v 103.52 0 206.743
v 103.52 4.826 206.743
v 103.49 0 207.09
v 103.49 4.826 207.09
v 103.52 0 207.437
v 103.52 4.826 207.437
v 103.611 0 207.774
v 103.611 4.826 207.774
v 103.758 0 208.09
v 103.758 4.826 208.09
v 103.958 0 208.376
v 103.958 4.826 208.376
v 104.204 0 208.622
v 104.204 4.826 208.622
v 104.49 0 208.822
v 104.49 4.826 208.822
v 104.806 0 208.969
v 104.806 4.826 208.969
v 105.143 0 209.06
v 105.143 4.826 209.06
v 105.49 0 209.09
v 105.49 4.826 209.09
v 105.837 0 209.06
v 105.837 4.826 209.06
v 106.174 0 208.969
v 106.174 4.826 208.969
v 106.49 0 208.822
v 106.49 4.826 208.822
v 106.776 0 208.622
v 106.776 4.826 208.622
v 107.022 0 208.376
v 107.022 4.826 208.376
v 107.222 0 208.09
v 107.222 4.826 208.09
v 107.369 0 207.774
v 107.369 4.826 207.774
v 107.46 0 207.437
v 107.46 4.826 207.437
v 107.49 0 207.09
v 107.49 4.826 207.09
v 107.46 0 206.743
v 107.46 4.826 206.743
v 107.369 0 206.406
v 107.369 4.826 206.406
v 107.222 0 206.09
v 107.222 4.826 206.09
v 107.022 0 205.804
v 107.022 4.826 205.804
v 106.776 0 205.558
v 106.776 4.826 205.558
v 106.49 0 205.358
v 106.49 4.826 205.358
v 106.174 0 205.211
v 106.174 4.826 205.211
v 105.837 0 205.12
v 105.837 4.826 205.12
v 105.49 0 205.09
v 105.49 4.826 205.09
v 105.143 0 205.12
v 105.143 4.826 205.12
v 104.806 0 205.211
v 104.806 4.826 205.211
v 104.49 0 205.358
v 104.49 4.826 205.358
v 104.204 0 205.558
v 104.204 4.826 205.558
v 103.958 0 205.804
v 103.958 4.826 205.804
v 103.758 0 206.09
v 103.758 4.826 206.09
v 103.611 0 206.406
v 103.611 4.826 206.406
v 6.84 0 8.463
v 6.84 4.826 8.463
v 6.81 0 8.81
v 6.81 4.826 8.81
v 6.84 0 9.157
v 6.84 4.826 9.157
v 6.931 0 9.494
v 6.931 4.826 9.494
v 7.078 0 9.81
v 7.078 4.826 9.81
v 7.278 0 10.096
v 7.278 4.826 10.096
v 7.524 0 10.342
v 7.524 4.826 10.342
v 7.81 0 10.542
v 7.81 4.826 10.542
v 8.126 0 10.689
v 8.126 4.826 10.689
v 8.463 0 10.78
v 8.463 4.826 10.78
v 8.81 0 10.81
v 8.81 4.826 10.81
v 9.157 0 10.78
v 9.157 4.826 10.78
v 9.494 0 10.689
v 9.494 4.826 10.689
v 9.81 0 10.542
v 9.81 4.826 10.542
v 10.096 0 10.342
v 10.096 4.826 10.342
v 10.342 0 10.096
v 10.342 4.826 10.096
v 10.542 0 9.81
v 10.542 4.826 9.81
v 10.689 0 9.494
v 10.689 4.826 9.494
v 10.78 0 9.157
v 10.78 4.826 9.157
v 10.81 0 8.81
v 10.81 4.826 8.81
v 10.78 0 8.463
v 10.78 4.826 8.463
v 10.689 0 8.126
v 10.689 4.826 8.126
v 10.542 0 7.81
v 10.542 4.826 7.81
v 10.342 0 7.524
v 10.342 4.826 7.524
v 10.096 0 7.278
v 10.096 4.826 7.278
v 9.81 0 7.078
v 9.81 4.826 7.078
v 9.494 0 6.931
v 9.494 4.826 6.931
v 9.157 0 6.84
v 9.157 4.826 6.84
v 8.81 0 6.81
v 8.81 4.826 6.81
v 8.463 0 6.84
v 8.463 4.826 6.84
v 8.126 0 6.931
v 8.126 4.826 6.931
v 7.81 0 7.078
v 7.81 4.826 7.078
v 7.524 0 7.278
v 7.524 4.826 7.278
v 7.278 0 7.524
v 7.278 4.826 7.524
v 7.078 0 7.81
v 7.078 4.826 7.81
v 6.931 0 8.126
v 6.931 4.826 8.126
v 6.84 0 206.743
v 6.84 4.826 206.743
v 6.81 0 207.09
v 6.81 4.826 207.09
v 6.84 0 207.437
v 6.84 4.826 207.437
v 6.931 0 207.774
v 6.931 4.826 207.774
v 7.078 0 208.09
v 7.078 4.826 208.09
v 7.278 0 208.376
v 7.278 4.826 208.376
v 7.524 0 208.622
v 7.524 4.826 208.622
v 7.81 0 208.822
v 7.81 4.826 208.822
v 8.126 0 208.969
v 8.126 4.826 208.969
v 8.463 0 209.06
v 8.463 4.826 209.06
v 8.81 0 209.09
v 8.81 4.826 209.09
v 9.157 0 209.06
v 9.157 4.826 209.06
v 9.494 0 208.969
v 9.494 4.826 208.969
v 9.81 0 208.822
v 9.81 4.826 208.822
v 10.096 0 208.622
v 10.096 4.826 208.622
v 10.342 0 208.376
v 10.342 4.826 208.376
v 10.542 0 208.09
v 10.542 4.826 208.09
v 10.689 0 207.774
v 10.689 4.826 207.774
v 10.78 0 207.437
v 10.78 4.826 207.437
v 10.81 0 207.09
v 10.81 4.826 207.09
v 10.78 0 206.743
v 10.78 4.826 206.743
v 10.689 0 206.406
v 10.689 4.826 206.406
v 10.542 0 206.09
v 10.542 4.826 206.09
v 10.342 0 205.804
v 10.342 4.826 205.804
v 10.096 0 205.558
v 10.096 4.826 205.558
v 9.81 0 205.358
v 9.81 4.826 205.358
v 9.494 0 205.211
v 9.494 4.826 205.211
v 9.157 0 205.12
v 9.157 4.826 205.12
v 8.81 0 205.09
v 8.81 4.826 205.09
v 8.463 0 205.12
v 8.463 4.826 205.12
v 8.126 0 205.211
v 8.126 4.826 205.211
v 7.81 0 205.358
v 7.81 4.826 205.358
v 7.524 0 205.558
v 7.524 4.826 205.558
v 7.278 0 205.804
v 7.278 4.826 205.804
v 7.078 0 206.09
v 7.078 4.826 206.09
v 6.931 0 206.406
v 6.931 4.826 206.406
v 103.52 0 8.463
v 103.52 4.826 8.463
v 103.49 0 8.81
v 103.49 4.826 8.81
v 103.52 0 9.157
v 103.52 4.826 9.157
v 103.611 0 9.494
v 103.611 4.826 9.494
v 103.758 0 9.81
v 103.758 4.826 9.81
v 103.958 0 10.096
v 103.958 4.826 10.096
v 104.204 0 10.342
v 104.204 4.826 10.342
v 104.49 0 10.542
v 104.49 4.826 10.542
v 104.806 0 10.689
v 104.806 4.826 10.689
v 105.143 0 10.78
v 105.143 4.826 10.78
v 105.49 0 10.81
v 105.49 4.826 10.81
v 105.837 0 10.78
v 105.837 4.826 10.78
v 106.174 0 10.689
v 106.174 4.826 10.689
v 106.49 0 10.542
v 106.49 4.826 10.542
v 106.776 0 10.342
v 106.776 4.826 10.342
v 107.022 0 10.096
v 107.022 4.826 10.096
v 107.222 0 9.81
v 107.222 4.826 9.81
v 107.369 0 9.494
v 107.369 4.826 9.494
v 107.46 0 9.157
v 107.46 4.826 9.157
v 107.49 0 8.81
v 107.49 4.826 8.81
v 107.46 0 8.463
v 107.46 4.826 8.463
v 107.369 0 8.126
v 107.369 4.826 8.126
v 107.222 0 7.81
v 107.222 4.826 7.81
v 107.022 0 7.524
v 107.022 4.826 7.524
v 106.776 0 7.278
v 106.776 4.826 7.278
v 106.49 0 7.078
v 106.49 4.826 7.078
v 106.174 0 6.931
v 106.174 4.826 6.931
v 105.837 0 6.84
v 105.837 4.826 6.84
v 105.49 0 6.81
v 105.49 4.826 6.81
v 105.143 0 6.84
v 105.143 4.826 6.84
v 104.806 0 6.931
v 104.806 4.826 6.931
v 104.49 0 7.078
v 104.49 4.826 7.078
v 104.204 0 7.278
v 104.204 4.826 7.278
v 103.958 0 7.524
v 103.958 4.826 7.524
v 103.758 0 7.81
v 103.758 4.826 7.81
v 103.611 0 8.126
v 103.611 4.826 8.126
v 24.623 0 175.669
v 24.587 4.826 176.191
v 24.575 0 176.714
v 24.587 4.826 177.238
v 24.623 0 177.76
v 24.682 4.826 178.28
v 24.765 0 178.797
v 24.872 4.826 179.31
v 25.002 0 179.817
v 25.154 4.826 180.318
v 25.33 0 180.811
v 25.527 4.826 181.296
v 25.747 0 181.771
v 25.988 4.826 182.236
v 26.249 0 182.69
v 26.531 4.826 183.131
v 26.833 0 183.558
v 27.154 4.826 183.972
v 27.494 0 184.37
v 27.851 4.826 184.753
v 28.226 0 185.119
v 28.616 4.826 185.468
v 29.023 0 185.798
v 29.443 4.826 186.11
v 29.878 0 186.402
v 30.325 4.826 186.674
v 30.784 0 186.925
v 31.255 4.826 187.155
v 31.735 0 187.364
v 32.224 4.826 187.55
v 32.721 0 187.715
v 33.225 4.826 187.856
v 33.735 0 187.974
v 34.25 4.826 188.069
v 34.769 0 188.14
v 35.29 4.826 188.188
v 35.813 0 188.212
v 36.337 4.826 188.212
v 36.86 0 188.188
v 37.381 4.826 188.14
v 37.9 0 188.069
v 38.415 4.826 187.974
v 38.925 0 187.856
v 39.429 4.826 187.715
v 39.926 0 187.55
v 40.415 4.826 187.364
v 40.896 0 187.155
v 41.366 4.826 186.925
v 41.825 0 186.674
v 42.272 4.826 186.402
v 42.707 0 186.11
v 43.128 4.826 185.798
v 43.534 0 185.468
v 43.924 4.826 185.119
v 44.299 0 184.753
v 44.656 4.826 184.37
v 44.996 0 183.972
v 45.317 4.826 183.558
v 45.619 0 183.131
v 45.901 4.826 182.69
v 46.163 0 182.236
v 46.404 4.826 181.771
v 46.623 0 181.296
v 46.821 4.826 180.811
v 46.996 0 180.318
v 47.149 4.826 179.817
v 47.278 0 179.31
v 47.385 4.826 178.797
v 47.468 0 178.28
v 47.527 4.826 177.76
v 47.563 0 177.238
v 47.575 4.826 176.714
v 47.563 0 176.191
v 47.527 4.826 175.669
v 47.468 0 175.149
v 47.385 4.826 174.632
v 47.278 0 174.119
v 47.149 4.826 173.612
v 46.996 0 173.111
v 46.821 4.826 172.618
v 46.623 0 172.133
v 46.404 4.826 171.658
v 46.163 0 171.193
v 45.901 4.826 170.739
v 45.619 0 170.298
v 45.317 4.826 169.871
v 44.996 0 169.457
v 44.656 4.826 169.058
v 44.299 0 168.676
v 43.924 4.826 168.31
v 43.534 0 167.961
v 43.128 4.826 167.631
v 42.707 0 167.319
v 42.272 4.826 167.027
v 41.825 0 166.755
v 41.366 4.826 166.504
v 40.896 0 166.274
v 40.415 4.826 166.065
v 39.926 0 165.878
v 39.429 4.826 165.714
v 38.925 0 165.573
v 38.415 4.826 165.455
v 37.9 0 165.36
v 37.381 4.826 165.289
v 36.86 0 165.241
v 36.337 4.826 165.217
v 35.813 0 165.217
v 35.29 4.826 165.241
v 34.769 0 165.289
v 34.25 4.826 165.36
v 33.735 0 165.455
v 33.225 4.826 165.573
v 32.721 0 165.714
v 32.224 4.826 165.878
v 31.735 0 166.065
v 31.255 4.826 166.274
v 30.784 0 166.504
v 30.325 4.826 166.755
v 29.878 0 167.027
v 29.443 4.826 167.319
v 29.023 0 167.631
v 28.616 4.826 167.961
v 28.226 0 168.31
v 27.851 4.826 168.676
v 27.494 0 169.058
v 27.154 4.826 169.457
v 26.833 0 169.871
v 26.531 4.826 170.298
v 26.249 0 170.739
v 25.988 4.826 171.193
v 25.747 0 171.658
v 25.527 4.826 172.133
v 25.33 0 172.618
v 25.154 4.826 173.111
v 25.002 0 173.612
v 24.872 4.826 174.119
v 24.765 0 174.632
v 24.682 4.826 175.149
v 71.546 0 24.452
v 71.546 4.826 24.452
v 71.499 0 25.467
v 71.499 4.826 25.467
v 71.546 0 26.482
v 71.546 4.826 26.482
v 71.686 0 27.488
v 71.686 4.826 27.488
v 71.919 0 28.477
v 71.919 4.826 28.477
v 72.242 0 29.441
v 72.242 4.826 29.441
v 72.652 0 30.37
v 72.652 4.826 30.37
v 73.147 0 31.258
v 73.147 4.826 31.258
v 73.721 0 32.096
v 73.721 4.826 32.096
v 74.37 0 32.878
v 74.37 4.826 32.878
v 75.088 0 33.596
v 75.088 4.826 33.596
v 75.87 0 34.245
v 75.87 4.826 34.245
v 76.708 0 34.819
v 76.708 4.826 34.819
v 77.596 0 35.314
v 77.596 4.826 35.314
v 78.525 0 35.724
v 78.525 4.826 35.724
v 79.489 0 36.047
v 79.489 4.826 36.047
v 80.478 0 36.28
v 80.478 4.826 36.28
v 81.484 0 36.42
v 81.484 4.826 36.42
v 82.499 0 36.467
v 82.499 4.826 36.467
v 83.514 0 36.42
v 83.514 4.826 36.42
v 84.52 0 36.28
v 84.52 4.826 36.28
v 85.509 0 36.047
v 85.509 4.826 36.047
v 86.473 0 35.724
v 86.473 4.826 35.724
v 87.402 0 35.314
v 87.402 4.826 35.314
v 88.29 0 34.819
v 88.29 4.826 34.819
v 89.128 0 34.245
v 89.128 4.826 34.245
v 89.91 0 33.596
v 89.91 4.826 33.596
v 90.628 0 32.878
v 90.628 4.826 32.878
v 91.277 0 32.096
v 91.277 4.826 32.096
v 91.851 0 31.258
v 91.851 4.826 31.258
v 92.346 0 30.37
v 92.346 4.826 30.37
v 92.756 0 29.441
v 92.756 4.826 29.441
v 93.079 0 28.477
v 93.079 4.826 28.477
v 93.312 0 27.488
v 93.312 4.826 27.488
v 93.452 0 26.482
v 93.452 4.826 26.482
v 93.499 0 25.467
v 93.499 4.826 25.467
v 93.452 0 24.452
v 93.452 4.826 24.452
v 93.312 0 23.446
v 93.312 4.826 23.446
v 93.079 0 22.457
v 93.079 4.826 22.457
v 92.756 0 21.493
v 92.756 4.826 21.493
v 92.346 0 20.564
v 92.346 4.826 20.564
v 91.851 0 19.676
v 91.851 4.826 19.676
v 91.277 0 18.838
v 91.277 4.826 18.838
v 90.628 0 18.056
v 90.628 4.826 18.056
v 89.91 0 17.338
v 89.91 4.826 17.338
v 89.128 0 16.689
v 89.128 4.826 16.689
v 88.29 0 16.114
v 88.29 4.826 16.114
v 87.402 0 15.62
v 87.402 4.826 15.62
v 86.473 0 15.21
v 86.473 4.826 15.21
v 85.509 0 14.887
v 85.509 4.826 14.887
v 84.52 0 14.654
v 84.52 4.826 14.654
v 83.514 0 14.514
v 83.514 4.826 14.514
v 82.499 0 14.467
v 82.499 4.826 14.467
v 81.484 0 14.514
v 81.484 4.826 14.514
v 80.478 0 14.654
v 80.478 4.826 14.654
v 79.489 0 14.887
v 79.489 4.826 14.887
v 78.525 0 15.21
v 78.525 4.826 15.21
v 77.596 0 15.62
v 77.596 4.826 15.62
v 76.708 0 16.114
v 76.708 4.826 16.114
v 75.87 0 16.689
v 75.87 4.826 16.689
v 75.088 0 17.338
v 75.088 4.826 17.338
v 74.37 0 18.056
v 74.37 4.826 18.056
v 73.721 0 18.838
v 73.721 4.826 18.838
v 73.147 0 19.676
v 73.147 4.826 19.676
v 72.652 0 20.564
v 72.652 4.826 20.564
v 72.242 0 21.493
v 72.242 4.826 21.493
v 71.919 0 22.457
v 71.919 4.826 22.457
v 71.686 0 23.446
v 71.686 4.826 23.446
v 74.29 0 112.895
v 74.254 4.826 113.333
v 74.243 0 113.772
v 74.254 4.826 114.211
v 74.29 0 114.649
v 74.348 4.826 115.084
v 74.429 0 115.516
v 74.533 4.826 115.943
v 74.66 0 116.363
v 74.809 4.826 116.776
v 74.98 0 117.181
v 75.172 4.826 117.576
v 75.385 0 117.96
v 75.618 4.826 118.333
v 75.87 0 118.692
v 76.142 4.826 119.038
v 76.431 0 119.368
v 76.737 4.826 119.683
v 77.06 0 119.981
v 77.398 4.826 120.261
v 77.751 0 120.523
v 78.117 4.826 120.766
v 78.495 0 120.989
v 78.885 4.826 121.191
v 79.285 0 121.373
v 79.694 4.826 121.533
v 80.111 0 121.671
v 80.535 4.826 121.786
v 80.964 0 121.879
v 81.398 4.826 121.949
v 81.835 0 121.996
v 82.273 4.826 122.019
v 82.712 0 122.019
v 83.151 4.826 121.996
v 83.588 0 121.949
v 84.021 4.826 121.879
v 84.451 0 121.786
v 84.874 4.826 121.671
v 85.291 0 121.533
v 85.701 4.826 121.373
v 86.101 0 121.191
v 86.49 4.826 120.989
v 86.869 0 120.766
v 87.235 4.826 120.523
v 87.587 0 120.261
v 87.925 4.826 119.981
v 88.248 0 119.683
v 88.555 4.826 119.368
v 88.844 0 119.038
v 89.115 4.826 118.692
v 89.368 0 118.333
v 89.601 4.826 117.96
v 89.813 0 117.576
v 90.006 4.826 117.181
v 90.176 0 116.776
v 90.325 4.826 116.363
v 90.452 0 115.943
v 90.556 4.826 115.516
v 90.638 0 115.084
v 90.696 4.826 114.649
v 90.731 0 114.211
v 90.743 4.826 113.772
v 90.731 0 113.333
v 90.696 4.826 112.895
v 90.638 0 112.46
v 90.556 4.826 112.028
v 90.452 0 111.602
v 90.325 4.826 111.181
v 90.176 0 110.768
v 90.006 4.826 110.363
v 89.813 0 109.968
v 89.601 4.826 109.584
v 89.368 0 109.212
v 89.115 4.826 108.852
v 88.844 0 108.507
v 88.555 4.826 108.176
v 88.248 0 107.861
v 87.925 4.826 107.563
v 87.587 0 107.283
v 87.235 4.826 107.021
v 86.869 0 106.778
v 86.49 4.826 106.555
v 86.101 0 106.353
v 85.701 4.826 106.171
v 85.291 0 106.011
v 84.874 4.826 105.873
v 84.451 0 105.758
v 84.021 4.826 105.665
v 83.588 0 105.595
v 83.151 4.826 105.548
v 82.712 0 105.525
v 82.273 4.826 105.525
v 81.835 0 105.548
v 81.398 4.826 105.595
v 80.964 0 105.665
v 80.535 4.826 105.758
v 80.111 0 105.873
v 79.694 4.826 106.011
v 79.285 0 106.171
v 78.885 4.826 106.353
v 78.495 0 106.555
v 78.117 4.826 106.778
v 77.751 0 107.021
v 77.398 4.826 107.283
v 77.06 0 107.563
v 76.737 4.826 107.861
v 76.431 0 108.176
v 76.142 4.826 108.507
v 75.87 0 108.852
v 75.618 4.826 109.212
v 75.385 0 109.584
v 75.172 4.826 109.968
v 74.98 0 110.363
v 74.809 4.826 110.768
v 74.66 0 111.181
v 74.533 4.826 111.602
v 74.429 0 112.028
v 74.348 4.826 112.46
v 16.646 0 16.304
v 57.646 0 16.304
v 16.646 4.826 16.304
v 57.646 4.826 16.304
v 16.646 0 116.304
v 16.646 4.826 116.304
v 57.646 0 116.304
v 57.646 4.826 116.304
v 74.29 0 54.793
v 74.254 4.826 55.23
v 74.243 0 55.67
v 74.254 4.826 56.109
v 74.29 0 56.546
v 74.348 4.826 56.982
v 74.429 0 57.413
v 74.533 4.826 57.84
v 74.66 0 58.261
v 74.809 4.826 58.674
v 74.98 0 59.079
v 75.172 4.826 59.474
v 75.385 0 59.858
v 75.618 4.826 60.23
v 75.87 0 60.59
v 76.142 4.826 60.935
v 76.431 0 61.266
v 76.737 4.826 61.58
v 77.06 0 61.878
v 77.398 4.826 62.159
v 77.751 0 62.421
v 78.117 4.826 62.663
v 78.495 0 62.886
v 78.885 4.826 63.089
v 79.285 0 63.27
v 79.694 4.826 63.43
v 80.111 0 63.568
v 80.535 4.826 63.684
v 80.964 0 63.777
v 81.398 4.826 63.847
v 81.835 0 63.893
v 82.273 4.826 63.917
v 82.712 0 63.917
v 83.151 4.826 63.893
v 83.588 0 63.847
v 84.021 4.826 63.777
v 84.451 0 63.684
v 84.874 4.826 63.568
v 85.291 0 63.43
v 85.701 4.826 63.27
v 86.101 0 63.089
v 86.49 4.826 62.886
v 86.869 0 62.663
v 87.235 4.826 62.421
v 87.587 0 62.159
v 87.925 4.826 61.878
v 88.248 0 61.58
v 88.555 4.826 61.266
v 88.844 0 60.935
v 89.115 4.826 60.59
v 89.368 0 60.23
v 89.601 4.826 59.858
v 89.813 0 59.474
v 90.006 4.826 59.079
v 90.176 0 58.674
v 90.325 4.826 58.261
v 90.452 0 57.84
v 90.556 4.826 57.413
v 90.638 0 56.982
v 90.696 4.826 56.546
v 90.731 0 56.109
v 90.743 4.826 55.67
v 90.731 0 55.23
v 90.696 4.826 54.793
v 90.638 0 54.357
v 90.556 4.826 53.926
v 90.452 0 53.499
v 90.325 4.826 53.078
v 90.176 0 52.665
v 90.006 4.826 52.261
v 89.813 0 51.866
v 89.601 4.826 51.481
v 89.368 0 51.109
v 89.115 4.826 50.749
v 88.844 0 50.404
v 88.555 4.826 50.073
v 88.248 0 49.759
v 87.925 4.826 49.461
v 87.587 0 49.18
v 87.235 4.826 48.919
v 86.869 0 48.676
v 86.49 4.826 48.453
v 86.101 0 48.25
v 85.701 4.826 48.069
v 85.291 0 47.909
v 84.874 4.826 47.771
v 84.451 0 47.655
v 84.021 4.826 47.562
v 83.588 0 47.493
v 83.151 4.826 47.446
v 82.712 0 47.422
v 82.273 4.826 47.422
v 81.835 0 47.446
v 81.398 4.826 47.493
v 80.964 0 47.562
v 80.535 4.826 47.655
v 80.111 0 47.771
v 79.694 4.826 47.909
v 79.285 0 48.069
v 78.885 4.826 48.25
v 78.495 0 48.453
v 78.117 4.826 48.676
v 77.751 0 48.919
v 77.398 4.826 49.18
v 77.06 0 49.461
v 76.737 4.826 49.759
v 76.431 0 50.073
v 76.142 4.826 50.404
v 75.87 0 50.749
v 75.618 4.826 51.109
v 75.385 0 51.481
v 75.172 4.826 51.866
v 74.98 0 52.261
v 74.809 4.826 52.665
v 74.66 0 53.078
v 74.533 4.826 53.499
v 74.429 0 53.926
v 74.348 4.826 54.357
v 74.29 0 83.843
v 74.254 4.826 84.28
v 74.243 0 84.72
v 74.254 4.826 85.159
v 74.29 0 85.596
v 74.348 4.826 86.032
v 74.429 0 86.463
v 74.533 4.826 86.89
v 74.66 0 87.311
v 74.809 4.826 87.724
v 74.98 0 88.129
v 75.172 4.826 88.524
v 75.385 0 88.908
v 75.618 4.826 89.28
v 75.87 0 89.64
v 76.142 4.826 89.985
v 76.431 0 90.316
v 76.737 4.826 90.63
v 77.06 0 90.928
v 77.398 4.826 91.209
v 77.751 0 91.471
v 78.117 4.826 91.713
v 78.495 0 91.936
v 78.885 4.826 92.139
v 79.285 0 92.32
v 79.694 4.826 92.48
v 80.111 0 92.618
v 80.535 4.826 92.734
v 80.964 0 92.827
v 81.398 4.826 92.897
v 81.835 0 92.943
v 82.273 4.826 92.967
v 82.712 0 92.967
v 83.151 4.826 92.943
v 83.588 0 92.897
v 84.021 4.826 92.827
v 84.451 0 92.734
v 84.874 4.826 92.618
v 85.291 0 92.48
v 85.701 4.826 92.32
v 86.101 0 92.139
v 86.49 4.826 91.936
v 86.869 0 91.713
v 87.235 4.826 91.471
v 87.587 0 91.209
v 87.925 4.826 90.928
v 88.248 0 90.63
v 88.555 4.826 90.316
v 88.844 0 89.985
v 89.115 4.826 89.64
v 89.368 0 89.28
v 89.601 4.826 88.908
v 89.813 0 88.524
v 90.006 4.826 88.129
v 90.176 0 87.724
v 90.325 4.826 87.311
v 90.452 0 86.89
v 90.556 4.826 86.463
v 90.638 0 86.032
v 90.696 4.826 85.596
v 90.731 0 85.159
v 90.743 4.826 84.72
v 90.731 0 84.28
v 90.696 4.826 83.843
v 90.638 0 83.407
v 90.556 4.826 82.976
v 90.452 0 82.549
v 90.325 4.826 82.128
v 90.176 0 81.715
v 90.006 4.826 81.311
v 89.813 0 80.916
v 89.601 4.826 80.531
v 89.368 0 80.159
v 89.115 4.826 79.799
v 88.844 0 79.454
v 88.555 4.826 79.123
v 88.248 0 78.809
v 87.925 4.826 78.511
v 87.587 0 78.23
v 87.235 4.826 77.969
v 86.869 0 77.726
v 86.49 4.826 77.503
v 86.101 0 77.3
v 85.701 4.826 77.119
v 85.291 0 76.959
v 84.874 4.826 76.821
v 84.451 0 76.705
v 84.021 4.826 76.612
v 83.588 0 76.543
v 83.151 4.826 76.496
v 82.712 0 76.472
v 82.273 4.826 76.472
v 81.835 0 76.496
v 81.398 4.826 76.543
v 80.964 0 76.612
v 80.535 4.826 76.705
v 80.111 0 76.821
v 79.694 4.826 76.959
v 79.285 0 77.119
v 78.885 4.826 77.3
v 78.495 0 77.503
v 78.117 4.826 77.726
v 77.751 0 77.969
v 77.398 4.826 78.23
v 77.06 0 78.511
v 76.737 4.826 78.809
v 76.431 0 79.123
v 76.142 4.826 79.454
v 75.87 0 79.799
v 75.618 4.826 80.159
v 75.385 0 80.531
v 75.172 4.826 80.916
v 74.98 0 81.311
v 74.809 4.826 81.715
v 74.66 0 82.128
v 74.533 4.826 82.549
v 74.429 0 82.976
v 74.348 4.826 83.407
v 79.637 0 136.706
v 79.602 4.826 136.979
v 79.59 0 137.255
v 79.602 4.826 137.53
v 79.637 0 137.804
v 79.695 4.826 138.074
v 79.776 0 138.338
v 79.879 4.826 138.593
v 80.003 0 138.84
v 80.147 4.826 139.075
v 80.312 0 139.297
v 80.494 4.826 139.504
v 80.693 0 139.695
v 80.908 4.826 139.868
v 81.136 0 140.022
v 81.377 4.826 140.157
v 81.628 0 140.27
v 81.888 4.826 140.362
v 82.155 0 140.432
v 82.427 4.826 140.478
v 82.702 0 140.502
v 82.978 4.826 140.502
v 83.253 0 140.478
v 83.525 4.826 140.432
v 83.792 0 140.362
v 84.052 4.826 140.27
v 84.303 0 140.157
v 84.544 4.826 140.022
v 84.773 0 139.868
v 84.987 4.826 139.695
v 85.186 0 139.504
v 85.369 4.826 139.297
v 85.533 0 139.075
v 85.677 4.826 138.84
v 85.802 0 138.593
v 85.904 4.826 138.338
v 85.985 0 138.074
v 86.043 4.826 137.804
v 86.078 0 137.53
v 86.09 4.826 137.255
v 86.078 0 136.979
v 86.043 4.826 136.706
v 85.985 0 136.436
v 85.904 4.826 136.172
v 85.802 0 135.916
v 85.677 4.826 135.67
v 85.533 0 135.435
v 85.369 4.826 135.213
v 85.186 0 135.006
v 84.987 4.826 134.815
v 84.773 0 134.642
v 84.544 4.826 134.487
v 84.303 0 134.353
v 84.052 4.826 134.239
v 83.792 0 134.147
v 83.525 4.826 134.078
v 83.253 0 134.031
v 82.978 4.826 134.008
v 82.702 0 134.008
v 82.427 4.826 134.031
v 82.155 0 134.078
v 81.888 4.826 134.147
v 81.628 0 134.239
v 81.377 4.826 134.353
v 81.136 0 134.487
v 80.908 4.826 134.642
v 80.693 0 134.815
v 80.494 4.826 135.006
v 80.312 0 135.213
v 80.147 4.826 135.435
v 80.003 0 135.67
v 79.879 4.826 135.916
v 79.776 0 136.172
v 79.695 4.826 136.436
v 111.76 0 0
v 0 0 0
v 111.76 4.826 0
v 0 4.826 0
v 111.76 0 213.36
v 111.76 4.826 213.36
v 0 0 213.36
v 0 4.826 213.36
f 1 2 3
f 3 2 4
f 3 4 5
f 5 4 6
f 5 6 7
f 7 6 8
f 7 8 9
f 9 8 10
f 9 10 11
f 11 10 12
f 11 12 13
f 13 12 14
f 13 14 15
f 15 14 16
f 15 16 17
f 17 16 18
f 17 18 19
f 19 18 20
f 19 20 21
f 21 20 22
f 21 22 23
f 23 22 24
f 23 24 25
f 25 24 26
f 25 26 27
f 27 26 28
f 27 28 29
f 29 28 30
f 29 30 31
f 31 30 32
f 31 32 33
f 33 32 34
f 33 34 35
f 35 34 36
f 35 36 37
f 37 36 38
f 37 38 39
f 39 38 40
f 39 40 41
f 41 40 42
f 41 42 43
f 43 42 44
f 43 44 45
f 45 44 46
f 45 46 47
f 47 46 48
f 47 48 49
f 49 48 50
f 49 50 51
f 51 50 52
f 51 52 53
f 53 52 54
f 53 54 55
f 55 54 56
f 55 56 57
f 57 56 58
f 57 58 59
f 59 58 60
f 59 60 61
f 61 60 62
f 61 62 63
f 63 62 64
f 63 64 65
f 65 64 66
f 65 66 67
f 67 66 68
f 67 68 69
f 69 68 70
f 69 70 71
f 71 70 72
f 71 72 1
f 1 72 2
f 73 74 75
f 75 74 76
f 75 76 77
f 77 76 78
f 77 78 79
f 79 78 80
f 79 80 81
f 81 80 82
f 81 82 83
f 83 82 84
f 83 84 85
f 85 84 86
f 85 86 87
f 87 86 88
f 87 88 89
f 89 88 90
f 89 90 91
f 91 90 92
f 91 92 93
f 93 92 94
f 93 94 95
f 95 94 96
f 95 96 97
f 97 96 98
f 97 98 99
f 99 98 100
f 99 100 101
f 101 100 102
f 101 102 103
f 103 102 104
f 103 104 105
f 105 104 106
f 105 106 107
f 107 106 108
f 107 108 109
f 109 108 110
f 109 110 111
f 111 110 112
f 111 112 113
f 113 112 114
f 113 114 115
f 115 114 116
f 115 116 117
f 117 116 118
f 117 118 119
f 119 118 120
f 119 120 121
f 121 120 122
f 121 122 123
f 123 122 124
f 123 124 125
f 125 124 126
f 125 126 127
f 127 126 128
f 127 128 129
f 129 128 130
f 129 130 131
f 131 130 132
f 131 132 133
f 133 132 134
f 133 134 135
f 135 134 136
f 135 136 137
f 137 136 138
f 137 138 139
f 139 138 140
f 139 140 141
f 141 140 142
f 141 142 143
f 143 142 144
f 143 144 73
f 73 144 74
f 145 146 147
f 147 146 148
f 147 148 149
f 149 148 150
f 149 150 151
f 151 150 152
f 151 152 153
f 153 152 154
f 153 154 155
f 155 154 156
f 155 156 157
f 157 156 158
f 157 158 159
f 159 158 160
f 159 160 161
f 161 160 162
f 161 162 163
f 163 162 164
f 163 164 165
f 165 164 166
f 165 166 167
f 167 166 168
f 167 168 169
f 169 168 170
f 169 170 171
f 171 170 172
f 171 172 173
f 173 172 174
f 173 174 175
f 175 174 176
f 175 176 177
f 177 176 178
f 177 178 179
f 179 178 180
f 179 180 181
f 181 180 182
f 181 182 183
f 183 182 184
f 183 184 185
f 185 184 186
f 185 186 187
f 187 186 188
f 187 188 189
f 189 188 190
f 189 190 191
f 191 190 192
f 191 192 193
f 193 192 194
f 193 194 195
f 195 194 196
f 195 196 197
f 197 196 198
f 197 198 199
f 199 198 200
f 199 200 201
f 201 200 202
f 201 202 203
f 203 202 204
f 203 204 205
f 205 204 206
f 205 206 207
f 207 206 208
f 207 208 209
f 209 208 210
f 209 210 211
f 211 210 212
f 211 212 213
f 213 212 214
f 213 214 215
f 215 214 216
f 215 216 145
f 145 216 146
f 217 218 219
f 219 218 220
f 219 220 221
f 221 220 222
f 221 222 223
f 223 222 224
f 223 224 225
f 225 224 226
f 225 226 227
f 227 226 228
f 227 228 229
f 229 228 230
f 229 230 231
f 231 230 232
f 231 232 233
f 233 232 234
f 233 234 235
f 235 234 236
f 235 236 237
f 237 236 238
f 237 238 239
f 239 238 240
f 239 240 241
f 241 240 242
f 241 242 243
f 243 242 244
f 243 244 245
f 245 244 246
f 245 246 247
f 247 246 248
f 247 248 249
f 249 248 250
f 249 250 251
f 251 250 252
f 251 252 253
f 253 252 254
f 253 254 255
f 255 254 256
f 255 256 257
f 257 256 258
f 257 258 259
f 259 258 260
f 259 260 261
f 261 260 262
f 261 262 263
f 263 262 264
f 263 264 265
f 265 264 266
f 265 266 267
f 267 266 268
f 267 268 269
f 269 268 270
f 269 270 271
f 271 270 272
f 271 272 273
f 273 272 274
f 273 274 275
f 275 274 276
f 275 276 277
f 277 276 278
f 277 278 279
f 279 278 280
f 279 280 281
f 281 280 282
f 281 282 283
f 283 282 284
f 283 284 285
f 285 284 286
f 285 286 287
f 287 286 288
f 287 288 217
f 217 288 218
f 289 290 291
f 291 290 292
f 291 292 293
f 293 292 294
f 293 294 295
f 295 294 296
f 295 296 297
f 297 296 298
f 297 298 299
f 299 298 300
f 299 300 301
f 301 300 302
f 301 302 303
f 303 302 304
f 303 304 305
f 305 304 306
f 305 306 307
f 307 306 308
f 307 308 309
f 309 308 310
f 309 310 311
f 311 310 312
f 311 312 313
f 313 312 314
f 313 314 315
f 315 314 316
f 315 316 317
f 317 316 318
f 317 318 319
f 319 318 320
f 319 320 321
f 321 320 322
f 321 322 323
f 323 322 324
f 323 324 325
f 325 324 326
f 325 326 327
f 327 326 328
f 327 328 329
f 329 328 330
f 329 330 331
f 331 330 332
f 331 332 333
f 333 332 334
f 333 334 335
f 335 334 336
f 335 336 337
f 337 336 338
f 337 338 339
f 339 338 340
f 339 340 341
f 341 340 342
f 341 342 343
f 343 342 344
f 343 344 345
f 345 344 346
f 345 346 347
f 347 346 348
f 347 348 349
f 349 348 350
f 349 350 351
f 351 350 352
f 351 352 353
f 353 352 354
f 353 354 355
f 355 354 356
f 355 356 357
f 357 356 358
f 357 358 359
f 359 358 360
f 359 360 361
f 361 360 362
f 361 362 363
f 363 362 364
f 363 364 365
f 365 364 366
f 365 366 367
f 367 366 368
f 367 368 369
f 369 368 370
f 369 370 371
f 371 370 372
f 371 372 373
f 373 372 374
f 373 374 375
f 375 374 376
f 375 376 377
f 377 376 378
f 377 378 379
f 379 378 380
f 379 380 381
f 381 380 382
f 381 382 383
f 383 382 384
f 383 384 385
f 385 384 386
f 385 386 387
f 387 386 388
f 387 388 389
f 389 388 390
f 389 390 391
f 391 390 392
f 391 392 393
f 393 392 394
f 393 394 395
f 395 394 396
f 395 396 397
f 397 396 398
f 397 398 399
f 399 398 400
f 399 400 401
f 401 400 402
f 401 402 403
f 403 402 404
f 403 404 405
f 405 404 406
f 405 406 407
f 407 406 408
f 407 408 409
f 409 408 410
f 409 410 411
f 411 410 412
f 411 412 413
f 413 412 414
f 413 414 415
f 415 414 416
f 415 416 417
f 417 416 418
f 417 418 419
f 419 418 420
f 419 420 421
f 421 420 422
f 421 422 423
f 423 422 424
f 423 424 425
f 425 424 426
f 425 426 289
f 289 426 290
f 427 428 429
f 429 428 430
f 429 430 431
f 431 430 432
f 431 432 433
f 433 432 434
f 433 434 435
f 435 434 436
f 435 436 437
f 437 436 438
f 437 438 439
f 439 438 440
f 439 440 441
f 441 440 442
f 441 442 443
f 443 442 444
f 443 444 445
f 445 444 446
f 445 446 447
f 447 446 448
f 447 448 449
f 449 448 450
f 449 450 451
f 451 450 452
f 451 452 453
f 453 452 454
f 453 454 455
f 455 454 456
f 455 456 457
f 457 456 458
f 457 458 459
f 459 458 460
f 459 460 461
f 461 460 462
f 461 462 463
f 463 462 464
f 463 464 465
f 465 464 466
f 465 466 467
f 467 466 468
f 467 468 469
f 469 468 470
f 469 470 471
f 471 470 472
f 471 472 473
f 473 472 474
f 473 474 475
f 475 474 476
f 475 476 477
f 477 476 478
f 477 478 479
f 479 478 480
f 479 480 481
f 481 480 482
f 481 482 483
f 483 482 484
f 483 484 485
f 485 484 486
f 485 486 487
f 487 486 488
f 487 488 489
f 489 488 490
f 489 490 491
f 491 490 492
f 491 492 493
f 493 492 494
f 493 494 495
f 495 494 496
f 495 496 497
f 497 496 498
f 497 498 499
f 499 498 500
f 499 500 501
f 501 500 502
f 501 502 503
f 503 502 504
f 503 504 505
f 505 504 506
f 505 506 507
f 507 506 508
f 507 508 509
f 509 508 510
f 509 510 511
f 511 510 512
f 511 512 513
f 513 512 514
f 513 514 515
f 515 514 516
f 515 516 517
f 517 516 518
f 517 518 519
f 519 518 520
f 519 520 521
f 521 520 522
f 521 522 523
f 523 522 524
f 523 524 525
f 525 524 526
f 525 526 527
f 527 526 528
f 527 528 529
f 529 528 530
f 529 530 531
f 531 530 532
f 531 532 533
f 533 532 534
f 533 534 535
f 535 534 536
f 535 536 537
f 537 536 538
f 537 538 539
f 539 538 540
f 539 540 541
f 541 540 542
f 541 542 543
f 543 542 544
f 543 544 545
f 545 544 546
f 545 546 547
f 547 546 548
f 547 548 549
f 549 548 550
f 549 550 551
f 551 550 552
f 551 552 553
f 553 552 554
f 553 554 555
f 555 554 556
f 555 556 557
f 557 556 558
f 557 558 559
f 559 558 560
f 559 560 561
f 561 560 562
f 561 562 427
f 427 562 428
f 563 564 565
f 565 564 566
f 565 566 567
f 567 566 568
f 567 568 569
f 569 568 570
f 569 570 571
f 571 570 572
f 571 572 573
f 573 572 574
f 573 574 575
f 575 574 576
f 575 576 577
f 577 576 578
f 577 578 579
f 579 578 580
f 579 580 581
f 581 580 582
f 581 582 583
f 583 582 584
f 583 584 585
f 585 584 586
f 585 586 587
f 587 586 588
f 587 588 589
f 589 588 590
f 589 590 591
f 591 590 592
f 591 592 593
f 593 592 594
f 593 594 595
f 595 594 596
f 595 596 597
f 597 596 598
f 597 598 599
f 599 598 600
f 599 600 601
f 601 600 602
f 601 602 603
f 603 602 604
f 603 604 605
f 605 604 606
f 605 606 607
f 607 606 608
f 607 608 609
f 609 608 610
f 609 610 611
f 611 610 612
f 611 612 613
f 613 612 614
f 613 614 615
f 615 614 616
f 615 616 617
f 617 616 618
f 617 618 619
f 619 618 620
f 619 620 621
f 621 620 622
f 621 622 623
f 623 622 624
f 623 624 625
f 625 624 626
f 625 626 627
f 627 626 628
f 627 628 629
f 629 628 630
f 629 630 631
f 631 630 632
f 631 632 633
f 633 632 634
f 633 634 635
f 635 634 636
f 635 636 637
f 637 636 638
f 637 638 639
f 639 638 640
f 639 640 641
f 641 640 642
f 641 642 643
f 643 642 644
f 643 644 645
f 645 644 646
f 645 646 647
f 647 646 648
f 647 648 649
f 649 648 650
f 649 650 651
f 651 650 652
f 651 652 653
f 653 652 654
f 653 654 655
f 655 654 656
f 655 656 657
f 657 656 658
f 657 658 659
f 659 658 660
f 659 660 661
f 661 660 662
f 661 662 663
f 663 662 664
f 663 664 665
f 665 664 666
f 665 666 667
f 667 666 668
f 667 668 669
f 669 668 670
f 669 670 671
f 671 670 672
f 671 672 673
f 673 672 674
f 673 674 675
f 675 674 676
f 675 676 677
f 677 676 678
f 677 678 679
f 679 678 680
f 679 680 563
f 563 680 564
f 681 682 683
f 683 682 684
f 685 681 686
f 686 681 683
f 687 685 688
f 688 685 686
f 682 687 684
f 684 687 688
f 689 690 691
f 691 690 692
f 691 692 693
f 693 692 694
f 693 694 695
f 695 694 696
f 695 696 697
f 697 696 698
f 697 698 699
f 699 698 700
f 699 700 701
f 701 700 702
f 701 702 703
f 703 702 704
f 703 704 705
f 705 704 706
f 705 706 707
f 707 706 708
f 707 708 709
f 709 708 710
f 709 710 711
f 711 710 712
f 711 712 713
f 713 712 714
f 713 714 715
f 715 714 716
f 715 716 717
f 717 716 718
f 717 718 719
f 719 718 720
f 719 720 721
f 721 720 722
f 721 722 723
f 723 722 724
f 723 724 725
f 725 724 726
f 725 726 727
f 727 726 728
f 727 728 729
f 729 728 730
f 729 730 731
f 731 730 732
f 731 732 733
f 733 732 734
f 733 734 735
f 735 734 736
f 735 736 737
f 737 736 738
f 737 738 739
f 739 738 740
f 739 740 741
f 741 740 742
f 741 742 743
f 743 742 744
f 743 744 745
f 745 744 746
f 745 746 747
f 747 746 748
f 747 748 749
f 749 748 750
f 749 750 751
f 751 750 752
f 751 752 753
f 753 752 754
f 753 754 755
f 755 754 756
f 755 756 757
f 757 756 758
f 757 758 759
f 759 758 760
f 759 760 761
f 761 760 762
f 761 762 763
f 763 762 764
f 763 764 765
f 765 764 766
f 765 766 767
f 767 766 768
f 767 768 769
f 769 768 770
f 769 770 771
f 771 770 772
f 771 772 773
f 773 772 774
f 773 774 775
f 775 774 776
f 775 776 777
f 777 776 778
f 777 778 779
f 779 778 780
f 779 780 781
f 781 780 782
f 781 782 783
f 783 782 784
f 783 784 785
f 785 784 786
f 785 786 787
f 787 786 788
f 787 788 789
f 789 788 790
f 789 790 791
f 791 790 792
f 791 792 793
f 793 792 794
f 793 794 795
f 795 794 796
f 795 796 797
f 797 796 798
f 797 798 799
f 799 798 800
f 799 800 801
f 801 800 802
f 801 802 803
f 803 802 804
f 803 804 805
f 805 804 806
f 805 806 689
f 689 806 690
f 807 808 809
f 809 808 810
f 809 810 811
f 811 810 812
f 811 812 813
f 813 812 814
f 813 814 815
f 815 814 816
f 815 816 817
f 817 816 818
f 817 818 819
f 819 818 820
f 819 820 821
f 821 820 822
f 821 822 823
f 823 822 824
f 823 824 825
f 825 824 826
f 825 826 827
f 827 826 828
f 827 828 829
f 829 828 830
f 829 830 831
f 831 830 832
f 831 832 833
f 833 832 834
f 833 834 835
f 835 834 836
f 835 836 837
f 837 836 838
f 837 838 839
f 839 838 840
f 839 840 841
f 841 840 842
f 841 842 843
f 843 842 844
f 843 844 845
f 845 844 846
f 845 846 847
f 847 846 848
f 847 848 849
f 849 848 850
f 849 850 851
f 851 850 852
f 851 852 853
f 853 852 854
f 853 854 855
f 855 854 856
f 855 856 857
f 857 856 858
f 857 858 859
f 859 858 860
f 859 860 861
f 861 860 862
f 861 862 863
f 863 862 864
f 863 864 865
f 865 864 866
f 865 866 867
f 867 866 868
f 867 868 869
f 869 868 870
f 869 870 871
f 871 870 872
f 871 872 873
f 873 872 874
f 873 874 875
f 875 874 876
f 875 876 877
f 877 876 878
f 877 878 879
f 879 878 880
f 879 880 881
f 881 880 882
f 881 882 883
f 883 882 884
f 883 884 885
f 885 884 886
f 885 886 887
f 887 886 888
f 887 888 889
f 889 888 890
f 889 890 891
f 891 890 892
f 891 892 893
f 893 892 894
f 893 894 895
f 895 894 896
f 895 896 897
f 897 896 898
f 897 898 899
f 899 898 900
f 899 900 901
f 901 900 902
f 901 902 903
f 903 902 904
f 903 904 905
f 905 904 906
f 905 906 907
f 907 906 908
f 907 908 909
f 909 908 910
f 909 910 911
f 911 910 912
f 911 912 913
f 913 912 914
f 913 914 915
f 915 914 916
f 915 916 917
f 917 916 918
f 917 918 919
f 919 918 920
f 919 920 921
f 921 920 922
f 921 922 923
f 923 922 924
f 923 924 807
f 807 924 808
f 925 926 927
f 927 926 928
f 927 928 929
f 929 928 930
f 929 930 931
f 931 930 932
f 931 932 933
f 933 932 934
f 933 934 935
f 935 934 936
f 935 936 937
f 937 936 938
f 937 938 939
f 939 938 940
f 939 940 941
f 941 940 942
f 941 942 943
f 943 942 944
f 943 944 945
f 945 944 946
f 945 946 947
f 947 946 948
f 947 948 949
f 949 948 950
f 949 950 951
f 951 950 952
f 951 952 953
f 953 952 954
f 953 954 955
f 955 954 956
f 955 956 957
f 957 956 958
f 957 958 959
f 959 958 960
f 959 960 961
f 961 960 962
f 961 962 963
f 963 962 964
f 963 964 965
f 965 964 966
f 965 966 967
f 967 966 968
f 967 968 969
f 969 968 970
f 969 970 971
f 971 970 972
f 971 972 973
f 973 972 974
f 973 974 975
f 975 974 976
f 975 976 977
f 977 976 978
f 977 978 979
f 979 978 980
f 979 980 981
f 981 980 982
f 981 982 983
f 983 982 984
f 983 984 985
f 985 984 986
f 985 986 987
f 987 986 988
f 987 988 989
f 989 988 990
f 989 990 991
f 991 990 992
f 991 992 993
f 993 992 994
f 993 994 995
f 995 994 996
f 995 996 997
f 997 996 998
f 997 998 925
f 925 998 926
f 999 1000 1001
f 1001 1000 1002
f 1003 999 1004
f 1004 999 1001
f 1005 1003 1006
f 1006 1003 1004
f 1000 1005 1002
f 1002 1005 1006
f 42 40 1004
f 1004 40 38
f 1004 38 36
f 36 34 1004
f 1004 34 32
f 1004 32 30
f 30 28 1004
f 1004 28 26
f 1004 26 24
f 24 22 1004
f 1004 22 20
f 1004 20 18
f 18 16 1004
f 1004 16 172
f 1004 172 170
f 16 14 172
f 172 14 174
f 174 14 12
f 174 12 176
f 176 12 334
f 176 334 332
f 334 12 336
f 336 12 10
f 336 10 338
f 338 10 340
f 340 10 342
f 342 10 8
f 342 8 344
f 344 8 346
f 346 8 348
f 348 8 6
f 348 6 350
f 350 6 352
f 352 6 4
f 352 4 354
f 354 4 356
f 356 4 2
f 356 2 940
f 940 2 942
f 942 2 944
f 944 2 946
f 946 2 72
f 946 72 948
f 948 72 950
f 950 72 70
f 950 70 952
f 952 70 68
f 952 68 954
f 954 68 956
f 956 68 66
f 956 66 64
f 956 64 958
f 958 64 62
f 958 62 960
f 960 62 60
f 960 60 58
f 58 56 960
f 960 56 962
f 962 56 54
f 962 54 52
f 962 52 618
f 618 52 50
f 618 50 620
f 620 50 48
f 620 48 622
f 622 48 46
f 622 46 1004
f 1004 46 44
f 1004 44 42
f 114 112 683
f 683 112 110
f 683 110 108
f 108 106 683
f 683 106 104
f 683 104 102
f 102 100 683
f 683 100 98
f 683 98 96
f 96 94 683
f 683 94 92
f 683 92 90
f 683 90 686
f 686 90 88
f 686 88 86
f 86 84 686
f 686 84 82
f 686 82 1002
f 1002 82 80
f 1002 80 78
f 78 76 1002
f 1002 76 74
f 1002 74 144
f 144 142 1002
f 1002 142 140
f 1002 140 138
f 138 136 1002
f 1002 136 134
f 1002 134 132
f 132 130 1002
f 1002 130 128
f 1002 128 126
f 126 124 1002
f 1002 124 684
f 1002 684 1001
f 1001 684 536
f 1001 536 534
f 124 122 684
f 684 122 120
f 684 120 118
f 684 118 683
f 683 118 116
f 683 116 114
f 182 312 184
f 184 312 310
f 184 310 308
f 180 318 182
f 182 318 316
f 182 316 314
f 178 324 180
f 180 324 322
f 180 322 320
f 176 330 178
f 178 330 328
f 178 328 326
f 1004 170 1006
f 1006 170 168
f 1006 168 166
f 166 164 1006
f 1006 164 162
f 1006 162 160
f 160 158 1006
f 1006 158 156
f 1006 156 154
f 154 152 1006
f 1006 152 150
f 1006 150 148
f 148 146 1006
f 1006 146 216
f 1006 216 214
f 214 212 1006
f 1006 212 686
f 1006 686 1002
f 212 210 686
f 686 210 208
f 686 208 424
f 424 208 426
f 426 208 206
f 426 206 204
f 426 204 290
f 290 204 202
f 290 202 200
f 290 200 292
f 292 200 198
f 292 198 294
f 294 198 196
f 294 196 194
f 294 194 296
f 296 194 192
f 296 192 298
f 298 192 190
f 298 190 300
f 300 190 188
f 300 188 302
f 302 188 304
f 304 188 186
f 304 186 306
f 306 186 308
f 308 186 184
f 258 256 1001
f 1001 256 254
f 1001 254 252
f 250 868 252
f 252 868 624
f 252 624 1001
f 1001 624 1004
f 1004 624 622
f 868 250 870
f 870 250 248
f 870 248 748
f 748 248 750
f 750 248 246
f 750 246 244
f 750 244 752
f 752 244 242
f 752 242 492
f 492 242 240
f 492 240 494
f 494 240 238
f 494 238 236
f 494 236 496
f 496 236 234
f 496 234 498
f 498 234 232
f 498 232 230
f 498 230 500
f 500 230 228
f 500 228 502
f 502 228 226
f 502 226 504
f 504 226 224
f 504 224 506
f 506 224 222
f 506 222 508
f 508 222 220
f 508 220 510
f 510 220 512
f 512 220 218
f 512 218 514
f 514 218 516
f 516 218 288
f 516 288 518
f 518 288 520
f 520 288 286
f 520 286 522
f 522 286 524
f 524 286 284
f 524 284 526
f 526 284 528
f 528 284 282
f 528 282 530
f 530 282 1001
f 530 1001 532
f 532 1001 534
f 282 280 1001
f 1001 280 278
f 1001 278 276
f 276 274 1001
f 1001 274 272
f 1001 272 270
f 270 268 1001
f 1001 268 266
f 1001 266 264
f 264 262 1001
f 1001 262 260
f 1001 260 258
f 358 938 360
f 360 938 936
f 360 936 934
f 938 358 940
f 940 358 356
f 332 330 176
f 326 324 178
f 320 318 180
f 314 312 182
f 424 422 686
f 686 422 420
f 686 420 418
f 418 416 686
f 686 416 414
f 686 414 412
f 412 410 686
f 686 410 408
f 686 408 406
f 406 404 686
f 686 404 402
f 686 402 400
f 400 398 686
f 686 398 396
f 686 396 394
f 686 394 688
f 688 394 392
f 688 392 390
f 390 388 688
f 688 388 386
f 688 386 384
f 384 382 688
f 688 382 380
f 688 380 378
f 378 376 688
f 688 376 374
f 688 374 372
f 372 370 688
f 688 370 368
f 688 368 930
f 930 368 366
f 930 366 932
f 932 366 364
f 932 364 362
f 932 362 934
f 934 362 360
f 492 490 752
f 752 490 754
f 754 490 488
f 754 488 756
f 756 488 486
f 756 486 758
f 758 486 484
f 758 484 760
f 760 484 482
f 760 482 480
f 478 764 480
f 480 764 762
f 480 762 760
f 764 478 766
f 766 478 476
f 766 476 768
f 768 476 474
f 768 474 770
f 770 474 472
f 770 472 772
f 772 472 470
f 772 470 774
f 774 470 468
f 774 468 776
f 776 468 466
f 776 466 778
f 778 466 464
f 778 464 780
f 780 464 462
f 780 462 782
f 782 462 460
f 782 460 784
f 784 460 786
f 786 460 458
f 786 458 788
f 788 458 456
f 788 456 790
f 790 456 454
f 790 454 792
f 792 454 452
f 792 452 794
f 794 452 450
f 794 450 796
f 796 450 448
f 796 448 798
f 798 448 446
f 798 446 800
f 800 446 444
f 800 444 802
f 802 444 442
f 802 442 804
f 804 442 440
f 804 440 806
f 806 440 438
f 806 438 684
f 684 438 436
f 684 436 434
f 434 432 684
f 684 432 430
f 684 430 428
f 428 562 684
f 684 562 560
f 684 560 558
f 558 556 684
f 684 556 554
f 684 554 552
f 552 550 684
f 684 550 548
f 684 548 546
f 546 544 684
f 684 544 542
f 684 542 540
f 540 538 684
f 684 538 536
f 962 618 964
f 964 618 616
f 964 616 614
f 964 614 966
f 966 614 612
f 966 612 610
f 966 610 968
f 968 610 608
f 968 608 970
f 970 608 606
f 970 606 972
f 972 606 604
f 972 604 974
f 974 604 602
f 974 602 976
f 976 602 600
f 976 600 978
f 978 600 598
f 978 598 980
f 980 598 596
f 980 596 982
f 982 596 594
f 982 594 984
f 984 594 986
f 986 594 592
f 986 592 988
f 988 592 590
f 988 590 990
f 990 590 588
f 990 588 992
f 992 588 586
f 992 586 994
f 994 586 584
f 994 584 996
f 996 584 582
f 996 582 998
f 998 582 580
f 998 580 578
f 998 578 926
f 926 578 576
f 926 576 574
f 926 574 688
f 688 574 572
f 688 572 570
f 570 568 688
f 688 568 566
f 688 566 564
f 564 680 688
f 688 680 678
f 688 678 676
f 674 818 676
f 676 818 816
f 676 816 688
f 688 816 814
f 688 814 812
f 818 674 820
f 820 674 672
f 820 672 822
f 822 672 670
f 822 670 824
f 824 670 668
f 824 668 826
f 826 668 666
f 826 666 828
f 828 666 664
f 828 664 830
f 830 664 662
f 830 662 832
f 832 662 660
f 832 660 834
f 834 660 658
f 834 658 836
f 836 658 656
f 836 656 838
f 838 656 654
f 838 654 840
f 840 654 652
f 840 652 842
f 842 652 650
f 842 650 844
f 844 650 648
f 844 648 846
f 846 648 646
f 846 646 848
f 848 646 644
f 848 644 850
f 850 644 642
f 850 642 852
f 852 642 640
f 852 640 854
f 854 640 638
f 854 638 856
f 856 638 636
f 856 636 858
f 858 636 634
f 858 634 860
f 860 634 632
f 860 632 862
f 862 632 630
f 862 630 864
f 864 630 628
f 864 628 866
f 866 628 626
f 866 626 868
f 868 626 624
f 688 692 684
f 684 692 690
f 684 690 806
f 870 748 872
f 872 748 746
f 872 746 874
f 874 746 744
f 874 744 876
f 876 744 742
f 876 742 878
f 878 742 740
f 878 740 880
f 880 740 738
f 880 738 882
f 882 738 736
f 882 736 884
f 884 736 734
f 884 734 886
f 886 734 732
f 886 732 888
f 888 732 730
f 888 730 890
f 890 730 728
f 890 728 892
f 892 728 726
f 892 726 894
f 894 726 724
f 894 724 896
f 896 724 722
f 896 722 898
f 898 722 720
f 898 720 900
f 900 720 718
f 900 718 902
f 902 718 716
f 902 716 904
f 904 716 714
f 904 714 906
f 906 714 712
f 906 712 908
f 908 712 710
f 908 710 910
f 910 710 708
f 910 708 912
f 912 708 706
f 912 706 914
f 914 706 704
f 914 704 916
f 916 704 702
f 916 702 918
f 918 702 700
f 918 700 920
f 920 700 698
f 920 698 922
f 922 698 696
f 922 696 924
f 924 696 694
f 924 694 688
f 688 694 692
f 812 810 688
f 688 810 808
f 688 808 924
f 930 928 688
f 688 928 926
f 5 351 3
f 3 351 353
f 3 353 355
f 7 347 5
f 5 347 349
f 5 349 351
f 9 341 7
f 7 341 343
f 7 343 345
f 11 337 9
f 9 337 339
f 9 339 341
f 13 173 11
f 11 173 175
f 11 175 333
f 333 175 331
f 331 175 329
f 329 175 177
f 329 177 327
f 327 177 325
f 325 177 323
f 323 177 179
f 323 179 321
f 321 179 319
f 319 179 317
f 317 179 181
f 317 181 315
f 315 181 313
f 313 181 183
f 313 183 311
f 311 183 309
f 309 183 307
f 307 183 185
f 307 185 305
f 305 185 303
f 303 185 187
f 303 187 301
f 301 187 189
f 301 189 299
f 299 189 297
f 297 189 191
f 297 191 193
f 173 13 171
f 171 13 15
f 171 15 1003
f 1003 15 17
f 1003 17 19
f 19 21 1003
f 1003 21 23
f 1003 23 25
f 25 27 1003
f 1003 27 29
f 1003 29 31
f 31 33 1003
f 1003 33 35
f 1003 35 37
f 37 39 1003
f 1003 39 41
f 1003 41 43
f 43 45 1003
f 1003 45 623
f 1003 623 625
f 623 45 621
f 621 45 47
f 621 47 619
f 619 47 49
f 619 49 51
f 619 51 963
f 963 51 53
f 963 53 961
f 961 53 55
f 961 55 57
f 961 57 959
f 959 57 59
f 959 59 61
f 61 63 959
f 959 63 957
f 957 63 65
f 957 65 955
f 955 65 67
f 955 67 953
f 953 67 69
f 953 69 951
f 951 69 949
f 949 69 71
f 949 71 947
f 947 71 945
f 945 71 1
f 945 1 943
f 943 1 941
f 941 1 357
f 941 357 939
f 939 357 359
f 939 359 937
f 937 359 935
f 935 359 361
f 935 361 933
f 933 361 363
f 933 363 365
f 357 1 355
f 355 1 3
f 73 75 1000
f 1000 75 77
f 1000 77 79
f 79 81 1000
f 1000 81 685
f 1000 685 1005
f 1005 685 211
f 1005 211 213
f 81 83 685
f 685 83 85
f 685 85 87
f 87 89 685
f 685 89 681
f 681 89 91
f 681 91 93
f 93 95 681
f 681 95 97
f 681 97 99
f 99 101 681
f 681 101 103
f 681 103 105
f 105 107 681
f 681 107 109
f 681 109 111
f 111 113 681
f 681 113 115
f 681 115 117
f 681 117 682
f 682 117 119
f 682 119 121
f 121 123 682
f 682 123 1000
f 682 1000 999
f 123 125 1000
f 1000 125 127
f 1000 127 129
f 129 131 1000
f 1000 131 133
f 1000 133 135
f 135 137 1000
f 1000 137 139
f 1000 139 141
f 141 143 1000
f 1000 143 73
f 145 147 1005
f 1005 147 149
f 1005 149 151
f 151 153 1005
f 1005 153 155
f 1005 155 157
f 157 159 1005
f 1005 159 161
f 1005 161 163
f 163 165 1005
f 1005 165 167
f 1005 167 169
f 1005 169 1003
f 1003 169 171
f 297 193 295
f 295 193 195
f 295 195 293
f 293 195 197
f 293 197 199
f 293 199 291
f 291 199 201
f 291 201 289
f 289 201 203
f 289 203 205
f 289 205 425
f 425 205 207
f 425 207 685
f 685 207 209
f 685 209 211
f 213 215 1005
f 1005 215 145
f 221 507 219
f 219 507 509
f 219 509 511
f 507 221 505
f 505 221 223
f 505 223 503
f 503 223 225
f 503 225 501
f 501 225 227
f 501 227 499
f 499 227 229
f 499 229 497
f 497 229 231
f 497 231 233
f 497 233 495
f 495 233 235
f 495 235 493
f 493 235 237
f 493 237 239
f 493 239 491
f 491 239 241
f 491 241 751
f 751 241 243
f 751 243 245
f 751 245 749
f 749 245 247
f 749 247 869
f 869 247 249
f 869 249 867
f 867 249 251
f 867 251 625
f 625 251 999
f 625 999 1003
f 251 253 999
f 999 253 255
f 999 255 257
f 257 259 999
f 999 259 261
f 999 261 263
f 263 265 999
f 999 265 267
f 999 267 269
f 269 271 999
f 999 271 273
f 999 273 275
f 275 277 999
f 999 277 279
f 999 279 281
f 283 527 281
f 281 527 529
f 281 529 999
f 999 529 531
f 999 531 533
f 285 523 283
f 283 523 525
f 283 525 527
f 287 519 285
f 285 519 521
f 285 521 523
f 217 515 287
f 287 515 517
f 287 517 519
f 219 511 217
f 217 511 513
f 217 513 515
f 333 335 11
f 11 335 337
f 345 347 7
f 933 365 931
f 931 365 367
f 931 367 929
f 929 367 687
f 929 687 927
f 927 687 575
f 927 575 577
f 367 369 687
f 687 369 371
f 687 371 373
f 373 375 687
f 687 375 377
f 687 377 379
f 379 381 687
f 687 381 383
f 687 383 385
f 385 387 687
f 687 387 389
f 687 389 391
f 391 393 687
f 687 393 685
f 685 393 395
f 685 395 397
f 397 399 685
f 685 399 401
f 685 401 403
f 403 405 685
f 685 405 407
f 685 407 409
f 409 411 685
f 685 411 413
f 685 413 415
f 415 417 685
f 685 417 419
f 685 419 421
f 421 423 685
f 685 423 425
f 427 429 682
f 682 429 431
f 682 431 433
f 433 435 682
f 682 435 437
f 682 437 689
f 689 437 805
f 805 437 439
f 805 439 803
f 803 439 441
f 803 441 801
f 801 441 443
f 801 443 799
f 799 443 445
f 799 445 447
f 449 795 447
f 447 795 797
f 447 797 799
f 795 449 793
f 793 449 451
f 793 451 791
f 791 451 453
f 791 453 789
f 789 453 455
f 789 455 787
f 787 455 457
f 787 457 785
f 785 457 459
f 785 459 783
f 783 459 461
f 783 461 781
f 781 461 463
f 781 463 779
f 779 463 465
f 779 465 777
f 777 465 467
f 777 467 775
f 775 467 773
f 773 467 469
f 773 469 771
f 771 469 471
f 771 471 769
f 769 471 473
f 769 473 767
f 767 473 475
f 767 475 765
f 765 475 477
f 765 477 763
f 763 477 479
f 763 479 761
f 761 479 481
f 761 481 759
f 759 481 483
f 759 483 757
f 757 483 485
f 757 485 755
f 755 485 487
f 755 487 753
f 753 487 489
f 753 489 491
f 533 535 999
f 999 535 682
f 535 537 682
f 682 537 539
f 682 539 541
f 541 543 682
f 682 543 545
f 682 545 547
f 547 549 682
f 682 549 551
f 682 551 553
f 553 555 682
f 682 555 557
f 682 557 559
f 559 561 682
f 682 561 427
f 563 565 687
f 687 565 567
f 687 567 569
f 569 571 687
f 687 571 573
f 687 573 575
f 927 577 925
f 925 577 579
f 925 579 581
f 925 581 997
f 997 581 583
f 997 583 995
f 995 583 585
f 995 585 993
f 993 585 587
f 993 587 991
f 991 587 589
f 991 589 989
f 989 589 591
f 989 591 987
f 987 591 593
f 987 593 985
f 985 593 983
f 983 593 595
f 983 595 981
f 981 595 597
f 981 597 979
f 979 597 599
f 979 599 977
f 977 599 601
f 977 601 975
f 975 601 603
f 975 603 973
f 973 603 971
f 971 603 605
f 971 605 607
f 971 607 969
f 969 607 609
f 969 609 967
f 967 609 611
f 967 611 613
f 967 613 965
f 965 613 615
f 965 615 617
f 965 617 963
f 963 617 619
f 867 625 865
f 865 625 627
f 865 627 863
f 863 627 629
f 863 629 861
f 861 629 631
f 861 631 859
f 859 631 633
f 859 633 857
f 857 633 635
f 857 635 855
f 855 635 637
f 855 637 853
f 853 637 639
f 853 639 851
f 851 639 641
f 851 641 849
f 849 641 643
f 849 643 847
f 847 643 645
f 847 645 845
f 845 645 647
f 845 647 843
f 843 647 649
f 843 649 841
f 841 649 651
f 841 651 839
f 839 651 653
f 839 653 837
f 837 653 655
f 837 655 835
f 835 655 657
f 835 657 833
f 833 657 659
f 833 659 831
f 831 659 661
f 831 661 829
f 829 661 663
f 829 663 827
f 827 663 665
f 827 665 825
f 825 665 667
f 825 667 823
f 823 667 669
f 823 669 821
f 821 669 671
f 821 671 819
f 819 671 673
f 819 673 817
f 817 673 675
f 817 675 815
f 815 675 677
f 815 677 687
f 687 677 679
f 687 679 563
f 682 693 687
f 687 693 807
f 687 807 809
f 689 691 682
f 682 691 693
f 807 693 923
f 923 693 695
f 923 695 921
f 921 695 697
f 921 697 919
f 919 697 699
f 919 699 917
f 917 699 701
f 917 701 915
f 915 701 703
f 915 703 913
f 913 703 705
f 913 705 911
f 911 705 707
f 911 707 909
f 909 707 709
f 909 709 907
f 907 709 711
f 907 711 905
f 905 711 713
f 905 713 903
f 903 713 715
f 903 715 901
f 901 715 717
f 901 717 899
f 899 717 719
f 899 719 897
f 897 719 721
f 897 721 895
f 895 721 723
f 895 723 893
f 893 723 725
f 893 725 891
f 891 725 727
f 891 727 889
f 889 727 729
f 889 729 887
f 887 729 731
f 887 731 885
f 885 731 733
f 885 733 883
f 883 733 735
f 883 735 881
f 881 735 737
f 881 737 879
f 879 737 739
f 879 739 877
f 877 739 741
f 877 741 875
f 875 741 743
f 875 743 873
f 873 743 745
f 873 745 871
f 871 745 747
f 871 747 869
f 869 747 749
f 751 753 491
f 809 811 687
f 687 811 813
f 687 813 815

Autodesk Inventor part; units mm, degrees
ref_plane "YZ Plane" through (0, 0, 0) normal (1, 0, 0) x (0, 1, 0)
ref_plane "XZ Plane" through (0, 0, 0) normal (0, 1, 0) x (-1, 0, 0)
ref_plane "XY Plane" through (0, 0, 0) normal (0, 0, 1) x (1, 0, 0)
sketch "Sketch1" plane through (0, 0, 0) normal (0, 1, 0) x (-1, 0, 0)
  line L0 (0, 0) -> (-111.76, 0)
  line L1 (-111.76, 0) -> (-111.76, 213.36)
  line L2 (-111.76, 213.36) -> (0, 213.36)
  line L3 (0, 213.36) -> (0, 0)
  line L4 (-111.76, 212.09) -> (-111.76, 0) projected
  line L5 (0, 212.09) -> (-111.76, 212.09) projected
  line L6 (0, 0) -> (0, 212.09) projected
  line L7 (-111.76, 0) -> (0, 0) projected
  line L8 (-111.76, 0) -> (0, 0) projected
  line L9 (0, 0) -> (0, 212.09) projected
  line L10 (-111.76, 212.09) -> (-111.76, 0) projected
  line L11 (-111.76, 0) -> (0, 0) projected
  line L12 (0, 218.44) -> (-107.95, 218.44) projected
  line L13 (-107.95, 218.44) -> (-107.95, 212.09) projected
  line L14 (0, 212.09) -> (0, 218.44) projected
  dimension "d0" = 111.76
  dimension "d1" = 213.36
extrude "Extrusion1" add sketch "Sketch1" along normal blind 4.826 contours L0 L1 L5 L3 | L5 L13 L2 L3 | L1 L2 L13 L5
sketch "Sketch2" plane through (0, 4.826, 0) normal (0, 1, 0) x (1, 0, 0)
  line L0 (111.76, 0) -> (0, 0) projected
  line L1 (0, 0) -> (0, -213.36) projected
  line L2 (88.8491, -51.3544) -> (82.4991, -51.3544)
  line L3 (82.4991, -51.3544) -> (82.4991, -0.0669)
  line L4 (82.4991, -0.0669) -> (82.4991, -12.7669)
  line L5 (82.4991, -0.0669) -> (82.4991, -25.4669)
  circle A0 centre (82.4991, -25.4669) radius 11
  line L6 (82.4991, -25.4669) -> (82.4991, -51.8669)
  line L7 (82.4991, -36.4669) -> (82.4991, -61.8669)
  circle A1 centre (82.4928, -55.6695) radius 8.25
  line L8 (82.4991, -48.0194) -> (82.4991, -56.1194)
  line L9 (82.4928, -63.9195) -> (82.4928, -84.7195)
  circle A2 centre (82.4928, -84.7195) radius 8.25
  line L10 (82.4928, -92.9695) -> (82.4928, -113.7721)
  circle A3 centre (82.4928, -113.7721) radius 8.25
  circle A4 centre (36.0751, -176.7145) radius 11.5
  line L11 (10.6751, -176.7232) -> (36.0751, -176.7232)
  line L12 (57.6456, -16.3037) -> (16.6456, -16.3037)
  line L13 (16.6456, -16.3037) -> (16.6456, -116.3037)
  line L14 (16.6456, -116.3037) -> (57.6456, -116.3037)
  line L15 (57.6456, -116.3037) -> (57.6456, -16.3037)
  line L16 (36.0751, -176.7232) -> (36.0751, -151.3232)
  line L17 (82.8401, -122.0148) -> (82.8401, -137.2548)
  circle A5 centre (82.8401, -137.2548) radius 3.25
  line L18 (0, -213.36) -> (111.76, -213.36) projected
  line L19 (111.76, -213.36) -> (111.76, 0) projected
  dimension "d14" = 22
  dimension "d18" = 16.5
  dimension "d13" = 25.4
  dimension "d17" = 25.4
  dimension "d19" = 8.1
  dimension "d20" = 20.8
  dimension "d22" = 20.8026
  dimension "d24" = 23
  dimension "d27" = 25.4
  dimension "d28" = 41
  dimension "d29" = 100
  dimension "d30" = 25.4
  dimension "d31" = 15.24
  dimension "d32" = 6.5
extrude "Extrusion3" cut sketch "Sketch2" against normal blind 25.4 contours A0 L3 | A5 | A3 | A2 | A1 | L3 A0 | A4 L11 L16 | L16 L11 A4 | L15 L14 L13 L12
sketch "Sketch3" plane through (0, 4.826, 0) normal (0, 1, 0) x (1, 0, 0)
  circle A0 centre (82.4991, -25.4669) radius 11 projected
  circle A1 centre (82.4928, -113.7721) radius 8.25 projected
  line L0 (57.6456, -116.3037) -> (16.6456, -116.3037) projected
  line L1 (16.6456, -116.3037) -> (16.6456, -16.3037) projected
  line L2 (16.6456, -16.3037) -> (57.6456, -16.3037) projected
  line L3 (57.6456, -16.3037) -> (57.6456, -116.3037) projected
  circle A2 centre (82.4928, -55.6695) radius 8.25 projected
  circle A3 centre (82.4928, -84.7195) radius 8.25 projected
  line L4 (111.76, 0) -> (0, 0) projected
  line L5 (0, 0) -> (0, -213.36) projected
  circle A4 centre (36.0751, -176.7145) radius 11.5 projected
  line L6 (57.6456, -116.3037) -> (16.6456, -116.3037) projected
  line L7 (16.6456, -116.3037) -> (16.6456, -16.3037) projected
  line L8 (16.6456, -16.3037) -> (57.6456, -16.3037) projected
  circle A5 centre (82.8401, -137.2548) radius 3.25 projected
  line L9 (111.76, 0) -> (0, 0) projected
  line L10 (0, 0) -> (0, -213.36) projected
  line L11 (0, 0) -> (0, -213.36) projected
  circle A6 centre (36.0751, -176.7145) radius 11.5 projected
  circle A7 centre (82.8401, -137.2548) radius 3.25 projected
  line L12 (57.6456, -16.3037) -> (57.6456, -116.3037) projected
  line L13 (0, -213.36) -> (111.76, -213.36) projected
  line L14 (111.76, -213.36) -> (111.76, 0) projected
  point P0 (107.95, -122.8721)
  point P1 (107.95, -24.8721)
  point P2 (107.95, 0)
sketch "Sketch5" plane through (0, 4.826, 0) normal (0, 1, 0) x (1, 0, 0)
  line L0 (0, 0) -> (0, -213.36) projected
  line L1 (0, -213.36) -> (0, -208.36)
  circle A0 centre (8.81, -8.81) radius 2 projected
  circle A1 centre (8.81, -207.09) radius 2 projected
  circle A2 centre (105.49, -207.09) radius 2 projected
  circle A3 centre (105.49, -8.81) radius 2 projected
  circle A4 centre (105.49, -8.81) radius 2
  circle A5 centre (105.49, -207.09) radius 2
  circle A6 centre (8.81, -207.09) radius 2
  circle A7 centre (8.81, -8.81) radius 2
  dimension "d36" = 5
extrude "Extrusion5" cut sketch "Sketch5" against normal up to next
properties part number "component box cover"
